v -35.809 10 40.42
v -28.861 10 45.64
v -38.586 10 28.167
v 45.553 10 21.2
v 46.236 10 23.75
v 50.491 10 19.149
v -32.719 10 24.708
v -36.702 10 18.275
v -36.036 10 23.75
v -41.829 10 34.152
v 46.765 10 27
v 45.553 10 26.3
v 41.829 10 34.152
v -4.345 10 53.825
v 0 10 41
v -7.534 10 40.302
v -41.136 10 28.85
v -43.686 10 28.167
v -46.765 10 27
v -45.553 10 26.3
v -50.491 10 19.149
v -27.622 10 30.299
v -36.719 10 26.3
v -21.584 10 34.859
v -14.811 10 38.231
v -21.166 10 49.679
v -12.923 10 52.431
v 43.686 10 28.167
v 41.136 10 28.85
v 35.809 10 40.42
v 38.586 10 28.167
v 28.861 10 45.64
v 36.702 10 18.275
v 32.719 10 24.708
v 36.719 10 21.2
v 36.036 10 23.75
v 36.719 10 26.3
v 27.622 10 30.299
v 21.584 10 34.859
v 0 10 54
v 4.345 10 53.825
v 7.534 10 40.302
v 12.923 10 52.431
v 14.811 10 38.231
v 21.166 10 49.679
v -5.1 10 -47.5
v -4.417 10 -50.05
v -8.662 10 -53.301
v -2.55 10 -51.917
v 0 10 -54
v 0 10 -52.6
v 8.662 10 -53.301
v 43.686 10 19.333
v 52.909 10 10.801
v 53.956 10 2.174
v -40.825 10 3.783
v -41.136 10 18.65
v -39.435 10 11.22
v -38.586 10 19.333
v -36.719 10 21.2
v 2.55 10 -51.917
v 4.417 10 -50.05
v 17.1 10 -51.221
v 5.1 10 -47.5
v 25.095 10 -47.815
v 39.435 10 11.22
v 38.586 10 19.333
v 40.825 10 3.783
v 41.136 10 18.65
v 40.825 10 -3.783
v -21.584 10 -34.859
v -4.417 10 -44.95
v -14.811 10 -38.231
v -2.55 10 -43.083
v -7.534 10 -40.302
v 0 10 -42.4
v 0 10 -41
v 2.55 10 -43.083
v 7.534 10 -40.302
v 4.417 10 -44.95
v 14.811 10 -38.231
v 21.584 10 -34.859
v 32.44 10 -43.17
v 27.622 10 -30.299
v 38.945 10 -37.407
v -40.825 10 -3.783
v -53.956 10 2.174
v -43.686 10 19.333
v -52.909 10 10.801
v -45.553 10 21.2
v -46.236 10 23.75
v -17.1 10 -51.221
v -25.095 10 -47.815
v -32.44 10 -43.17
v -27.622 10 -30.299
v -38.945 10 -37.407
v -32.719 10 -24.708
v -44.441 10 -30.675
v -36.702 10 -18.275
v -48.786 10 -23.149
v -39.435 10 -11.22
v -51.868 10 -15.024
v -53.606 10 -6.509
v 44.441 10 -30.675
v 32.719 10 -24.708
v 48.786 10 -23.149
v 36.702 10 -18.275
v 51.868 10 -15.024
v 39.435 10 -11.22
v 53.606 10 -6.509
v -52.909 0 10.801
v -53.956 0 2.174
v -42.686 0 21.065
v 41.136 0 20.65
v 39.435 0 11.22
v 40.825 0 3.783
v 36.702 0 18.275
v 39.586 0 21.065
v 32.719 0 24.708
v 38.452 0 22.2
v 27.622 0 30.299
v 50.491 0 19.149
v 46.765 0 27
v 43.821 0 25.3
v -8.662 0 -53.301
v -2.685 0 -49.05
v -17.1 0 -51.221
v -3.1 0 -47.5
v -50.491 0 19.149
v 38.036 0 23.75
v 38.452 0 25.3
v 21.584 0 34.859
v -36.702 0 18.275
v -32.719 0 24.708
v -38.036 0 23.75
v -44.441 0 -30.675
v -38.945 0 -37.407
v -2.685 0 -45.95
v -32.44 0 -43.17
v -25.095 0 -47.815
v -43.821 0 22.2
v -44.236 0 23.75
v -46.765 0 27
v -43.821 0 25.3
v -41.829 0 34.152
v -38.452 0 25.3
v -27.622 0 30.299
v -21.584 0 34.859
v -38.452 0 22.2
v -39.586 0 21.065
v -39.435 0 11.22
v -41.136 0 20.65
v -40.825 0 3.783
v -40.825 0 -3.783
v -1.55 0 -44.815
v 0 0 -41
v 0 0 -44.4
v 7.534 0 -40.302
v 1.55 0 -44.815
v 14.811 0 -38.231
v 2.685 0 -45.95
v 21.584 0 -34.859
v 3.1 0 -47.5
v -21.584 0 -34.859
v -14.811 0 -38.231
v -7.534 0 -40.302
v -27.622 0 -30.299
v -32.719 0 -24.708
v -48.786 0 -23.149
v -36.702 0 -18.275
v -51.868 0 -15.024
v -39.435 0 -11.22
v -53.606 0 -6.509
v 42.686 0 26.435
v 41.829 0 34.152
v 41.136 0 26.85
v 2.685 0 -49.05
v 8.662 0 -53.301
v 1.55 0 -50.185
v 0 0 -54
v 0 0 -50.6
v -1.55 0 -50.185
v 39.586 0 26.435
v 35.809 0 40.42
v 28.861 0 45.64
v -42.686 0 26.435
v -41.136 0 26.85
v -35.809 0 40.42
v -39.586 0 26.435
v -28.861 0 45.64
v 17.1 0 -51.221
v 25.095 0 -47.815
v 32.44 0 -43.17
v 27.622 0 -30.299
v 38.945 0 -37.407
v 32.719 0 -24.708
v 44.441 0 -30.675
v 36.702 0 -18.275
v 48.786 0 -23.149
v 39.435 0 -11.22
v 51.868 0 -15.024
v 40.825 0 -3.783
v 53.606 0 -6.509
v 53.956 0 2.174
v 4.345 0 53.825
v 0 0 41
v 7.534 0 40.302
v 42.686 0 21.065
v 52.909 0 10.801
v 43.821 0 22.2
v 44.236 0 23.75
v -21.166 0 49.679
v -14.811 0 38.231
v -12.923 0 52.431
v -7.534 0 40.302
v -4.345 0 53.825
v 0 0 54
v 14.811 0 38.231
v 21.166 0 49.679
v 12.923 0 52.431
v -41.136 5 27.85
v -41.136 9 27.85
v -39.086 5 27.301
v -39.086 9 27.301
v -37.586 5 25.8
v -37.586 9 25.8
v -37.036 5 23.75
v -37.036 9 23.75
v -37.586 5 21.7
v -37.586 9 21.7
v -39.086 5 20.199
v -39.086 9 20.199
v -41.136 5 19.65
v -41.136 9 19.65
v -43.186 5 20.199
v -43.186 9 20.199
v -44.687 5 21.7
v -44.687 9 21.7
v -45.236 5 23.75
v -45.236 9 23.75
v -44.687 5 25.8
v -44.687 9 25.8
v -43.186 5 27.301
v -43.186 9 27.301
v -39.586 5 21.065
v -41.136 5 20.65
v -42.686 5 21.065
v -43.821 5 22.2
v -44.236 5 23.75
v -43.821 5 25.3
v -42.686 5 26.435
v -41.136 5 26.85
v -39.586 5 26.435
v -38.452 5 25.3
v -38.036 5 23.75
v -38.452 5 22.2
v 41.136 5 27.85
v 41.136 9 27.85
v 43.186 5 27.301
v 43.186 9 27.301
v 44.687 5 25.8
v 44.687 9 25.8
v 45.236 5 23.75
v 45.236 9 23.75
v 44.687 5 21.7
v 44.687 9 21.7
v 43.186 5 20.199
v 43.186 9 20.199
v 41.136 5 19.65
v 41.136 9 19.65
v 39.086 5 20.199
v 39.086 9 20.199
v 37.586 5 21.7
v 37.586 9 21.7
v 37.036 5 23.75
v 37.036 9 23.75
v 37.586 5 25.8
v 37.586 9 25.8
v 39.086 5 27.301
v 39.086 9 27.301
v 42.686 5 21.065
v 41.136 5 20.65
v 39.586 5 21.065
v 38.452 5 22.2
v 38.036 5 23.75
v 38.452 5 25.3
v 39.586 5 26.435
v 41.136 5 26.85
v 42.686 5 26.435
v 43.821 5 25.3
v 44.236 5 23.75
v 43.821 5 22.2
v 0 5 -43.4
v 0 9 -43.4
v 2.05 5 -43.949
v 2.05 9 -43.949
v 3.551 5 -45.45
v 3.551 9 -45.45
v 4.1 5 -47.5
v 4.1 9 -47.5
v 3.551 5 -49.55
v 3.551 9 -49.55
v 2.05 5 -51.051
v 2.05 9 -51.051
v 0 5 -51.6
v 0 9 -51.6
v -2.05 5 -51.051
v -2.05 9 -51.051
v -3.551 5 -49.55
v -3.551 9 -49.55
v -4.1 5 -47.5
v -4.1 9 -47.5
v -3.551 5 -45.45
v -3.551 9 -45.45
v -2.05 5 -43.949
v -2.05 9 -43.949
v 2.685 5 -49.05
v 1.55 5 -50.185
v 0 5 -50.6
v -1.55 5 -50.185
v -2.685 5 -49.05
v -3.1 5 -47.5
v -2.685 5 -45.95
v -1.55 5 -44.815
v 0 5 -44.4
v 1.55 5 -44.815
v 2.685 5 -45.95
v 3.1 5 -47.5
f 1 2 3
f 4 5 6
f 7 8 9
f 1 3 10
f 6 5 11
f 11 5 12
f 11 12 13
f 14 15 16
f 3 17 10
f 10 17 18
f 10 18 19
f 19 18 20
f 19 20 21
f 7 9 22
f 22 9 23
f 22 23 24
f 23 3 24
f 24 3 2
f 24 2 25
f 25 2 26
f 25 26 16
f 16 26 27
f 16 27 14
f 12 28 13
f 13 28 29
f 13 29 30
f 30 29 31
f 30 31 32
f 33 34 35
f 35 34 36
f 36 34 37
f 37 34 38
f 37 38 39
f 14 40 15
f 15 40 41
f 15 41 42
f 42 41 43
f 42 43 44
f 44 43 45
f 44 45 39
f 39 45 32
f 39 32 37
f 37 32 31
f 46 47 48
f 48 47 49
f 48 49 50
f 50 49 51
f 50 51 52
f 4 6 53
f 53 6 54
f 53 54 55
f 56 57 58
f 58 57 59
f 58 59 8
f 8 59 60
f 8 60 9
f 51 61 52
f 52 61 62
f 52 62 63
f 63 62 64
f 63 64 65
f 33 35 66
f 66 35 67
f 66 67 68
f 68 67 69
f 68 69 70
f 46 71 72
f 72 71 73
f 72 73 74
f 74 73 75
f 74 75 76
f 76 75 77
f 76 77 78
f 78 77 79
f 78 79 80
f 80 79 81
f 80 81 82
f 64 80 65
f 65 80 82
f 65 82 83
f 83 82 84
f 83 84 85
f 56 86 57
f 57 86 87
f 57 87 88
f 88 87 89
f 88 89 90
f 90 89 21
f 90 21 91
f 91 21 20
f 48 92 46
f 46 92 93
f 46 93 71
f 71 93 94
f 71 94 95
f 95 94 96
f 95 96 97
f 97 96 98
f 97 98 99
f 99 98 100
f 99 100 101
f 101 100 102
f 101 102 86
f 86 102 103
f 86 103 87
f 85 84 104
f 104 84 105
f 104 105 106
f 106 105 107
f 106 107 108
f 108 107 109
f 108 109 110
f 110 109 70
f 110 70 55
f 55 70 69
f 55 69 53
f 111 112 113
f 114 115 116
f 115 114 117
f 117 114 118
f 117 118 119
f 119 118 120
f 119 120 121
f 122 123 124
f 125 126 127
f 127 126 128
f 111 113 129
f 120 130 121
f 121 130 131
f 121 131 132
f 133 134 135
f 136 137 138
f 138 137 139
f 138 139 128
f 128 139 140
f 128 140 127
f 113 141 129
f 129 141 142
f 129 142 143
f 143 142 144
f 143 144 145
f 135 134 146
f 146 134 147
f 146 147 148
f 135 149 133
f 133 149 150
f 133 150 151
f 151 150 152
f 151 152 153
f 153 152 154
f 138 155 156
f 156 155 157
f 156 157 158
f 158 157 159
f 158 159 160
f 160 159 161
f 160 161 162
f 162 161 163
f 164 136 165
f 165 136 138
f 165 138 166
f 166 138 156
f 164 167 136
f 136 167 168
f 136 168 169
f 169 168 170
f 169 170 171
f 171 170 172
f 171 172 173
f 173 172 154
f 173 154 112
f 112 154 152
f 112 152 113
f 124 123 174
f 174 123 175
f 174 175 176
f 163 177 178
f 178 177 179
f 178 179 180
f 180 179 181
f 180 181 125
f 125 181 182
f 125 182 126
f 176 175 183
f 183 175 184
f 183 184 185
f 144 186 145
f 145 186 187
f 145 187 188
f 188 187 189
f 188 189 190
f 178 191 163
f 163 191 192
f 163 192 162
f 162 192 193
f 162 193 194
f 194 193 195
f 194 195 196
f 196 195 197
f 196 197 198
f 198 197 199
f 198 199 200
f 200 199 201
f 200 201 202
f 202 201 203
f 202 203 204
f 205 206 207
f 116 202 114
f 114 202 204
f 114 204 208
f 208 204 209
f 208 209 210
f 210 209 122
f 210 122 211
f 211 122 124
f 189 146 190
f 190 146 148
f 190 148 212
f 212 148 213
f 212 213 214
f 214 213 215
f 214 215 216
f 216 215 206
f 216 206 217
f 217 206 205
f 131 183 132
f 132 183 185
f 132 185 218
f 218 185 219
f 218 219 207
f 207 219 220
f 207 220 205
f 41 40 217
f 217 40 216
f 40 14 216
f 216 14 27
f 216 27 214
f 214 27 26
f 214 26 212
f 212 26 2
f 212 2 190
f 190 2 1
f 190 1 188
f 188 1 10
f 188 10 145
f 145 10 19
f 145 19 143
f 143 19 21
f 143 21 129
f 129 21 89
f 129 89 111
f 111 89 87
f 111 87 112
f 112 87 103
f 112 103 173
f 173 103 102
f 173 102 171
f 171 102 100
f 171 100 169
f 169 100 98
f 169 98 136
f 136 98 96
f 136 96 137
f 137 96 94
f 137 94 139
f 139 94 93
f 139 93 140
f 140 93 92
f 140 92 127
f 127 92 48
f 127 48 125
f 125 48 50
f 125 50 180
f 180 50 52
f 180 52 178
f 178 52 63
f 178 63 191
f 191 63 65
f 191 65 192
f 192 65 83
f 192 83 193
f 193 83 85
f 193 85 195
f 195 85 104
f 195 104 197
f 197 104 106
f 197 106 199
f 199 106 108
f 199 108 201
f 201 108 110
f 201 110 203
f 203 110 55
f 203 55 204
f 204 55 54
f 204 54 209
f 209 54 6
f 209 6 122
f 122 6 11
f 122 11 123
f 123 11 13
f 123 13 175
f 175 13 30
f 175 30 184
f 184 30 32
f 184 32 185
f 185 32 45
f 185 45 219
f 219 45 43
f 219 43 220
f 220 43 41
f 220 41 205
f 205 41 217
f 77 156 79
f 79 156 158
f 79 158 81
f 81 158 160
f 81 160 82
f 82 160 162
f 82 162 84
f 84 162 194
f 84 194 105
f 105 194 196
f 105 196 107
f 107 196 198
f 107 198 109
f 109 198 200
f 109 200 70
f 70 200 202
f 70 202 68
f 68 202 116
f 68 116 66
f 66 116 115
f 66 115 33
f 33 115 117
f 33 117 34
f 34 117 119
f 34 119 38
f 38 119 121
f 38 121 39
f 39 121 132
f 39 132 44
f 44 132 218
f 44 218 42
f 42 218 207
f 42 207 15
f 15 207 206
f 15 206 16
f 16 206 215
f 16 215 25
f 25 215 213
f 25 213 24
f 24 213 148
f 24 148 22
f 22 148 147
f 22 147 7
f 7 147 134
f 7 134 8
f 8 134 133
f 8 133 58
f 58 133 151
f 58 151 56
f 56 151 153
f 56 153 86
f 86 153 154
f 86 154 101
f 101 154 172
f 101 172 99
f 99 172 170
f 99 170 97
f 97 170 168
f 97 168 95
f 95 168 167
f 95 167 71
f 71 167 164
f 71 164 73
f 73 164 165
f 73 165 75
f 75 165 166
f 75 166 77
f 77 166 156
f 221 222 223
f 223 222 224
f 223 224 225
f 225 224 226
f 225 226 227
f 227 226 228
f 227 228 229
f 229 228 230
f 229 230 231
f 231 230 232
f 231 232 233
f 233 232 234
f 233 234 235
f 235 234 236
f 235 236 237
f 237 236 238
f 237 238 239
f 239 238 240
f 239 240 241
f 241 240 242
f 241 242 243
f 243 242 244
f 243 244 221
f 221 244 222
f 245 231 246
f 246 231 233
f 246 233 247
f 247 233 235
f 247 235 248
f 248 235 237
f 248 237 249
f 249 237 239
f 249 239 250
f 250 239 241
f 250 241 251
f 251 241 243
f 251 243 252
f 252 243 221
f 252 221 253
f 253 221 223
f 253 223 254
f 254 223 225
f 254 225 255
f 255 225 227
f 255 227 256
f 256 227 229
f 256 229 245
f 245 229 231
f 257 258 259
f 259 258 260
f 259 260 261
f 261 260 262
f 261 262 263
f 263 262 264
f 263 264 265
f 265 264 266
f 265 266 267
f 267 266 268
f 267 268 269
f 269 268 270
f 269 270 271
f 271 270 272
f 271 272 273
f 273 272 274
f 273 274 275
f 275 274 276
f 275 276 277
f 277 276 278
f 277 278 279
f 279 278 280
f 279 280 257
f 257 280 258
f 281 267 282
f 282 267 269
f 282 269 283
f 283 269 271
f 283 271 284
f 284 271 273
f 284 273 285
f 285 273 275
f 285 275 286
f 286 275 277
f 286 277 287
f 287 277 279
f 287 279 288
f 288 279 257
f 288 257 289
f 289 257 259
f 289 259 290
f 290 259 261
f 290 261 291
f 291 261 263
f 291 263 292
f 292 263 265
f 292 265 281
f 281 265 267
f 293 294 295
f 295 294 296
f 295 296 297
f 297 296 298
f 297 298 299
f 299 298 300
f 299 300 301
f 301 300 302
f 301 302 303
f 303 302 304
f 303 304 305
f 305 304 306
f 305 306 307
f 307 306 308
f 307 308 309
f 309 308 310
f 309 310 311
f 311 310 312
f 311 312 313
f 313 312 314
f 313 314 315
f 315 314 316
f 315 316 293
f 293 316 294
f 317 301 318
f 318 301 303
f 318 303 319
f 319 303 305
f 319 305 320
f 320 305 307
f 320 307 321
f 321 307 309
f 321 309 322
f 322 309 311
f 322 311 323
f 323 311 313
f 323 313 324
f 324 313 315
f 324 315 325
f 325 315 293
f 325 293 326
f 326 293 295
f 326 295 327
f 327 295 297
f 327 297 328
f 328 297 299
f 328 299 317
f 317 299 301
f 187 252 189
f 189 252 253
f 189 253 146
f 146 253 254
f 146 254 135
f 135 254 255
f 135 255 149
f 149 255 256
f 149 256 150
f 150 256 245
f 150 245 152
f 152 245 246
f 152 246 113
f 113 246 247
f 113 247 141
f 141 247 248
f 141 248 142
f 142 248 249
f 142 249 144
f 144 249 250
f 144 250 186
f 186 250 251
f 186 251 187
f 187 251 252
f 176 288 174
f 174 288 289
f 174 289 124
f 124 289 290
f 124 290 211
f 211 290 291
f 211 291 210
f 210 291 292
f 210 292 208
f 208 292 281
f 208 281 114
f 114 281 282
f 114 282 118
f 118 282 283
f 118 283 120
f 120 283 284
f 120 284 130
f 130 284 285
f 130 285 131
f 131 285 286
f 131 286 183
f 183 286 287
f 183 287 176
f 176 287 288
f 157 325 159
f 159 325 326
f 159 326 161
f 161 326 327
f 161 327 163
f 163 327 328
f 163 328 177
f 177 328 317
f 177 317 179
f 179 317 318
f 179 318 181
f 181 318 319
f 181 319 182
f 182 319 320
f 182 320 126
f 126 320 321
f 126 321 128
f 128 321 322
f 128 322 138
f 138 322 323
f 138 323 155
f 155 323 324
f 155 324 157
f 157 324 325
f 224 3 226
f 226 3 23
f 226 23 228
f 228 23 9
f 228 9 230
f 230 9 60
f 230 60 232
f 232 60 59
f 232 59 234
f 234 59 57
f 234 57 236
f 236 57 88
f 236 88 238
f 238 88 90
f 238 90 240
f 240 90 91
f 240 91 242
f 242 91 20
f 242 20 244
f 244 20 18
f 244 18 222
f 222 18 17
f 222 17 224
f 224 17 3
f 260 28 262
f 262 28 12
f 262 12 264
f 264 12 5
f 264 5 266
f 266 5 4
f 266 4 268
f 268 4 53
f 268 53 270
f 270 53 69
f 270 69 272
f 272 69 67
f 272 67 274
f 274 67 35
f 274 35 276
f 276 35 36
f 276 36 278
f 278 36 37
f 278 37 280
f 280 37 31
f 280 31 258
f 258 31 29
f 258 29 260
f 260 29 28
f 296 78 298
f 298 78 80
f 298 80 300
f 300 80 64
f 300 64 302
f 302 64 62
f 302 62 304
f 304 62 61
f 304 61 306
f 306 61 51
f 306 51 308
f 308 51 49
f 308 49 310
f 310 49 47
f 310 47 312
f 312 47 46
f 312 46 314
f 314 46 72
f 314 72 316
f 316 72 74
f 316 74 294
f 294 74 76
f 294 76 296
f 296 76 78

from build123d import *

# Parameters (mm, degrees)
SKETCH1_R           = 54
SKETCH1_R_2         = 41
BOSS_EXTRUDE1_DEPTH = 10
SKETCH2_R           = 4.1
CUT_EXTRUDE1_DEPTH  = 5
CUT_EXTRUDE2_REACH  = 78.531
SKETCH3_R           = 3.1
CHAMFER1_SIZE       = 1


with BuildPart() as part:
    # Sketch1 → Boss-Extrude1 (new body)
    with BuildSketch(Plane(origin=(0, 0, 0), x_dir=(1, 0, 0), z_dir=(0, 1, 0))):
        with Locations(Location((0, 0, 0), (0, 0, 270))):
            Circle(SKETCH1_R)
        with Locations(Location((0, 0, 0), (0, 0, 270))):
            Circle(SKETCH1_R_2, mode=Mode.SUBTRACT)
    extrude(amount=BOSS_EXTRUDE1_DEPTH)

    # Sketch2 → Cut-Extrude1 (cut)
    with BuildSketch(Plane(origin=(0, 10, 0), x_dir=(1, 0, 0), z_dir=(0, 1, 0))):
        with Locations(Location((0, 47.5, 0), (0, 0, 270))):
            Circle(SKETCH2_R)
        with Locations(Location((41.13620668, -23.75, 0), (0, 0, 270))):
            Circle(SKETCH2_R)
        with Locations(Location((-41.13620668, -23.75, 0), (0, 0, 270))):
            Circle(SKETCH2_R)
    extrude(amount=-CUT_EXTRUDE1_DEPTH, mode=Mode.SUBTRACT)

    # Sketch3 → Cut-Extrude2 (cut, up to next)
    with BuildSketch(Plane(origin=(0, 5, 0), x_dir=(1, 0, 0), z_dir=(0, 1, 0)), mode=Mode.PRIVATE) as cut_extrude2_sk1:
        with Locations(Location((0, 47.5, 0), (0, 0, 270))):
            Circle(SKETCH3_R)
    cut_extrude2_tool1 = extrude(cut_extrude2_sk1.sketch, amount=-CUT_EXTRUDE2_REACH, mode=Mode.PRIVATE) & part.part
    # Sketch3 → Cut-Extrude2 (cut, up to next)
    with BuildSketch(Plane(origin=(0, 5, 0), x_dir=(1, 0, 0), z_dir=(0, 1, 0)), mode=Mode.PRIVATE) as cut_extrude2_sk2:
        with Locations(Location((41.13620668, -23.75, 0), (0, 0, 270))):
            Circle(SKETCH3_R)
    cut_extrude2_tool2 = extrude(cut_extrude2_sk2.sketch, amount=-CUT_EXTRUDE2_REACH, mode=Mode.PRIVATE) & part.part
    # Sketch3 → Cut-Extrude2 (cut, up to next)
    with BuildSketch(Plane(origin=(0, 5, 0), x_dir=(1, 0, 0), z_dir=(0, 1, 0)), mode=Mode.PRIVATE) as cut_extrude2_sk3:
        with Locations(Location((-41.13620668, -23.75, 0), (0, 0, 270))):
            Circle(SKETCH3_R)
    cut_extrude2_tool3 = extrude(cut_extrude2_sk3.sketch, amount=-CUT_EXTRUDE2_REACH, mode=Mode.PRIVATE) & part.part
    add(cut_extrude2_tool1.solids().sort_by_distance((0, 5, -47.5))[0], mode=Mode.SUBTRACT)
    add(cut_extrude2_tool2.solids().sort_by_distance((41.136207, 5, 23.75))[0], mode=Mode.SUBTRACT)
    add(cut_extrude2_tool3.solids().sort_by_distance((-41.136207, 5, 23.75))[0], mode=Mode.SUBTRACT)

    # Chamfer1
    chamfer1_edges = [part.edges().sort_by_distance(p)[0] for p in [
        (0, 10, -51.6),
        (41.13620668, 10, 19.65),
        (-41.13620668, 10, 19.65),
    ]]
    chamfer(chamfer1_edges, length=CHAMFER1_SIZE)


solid = part.part
